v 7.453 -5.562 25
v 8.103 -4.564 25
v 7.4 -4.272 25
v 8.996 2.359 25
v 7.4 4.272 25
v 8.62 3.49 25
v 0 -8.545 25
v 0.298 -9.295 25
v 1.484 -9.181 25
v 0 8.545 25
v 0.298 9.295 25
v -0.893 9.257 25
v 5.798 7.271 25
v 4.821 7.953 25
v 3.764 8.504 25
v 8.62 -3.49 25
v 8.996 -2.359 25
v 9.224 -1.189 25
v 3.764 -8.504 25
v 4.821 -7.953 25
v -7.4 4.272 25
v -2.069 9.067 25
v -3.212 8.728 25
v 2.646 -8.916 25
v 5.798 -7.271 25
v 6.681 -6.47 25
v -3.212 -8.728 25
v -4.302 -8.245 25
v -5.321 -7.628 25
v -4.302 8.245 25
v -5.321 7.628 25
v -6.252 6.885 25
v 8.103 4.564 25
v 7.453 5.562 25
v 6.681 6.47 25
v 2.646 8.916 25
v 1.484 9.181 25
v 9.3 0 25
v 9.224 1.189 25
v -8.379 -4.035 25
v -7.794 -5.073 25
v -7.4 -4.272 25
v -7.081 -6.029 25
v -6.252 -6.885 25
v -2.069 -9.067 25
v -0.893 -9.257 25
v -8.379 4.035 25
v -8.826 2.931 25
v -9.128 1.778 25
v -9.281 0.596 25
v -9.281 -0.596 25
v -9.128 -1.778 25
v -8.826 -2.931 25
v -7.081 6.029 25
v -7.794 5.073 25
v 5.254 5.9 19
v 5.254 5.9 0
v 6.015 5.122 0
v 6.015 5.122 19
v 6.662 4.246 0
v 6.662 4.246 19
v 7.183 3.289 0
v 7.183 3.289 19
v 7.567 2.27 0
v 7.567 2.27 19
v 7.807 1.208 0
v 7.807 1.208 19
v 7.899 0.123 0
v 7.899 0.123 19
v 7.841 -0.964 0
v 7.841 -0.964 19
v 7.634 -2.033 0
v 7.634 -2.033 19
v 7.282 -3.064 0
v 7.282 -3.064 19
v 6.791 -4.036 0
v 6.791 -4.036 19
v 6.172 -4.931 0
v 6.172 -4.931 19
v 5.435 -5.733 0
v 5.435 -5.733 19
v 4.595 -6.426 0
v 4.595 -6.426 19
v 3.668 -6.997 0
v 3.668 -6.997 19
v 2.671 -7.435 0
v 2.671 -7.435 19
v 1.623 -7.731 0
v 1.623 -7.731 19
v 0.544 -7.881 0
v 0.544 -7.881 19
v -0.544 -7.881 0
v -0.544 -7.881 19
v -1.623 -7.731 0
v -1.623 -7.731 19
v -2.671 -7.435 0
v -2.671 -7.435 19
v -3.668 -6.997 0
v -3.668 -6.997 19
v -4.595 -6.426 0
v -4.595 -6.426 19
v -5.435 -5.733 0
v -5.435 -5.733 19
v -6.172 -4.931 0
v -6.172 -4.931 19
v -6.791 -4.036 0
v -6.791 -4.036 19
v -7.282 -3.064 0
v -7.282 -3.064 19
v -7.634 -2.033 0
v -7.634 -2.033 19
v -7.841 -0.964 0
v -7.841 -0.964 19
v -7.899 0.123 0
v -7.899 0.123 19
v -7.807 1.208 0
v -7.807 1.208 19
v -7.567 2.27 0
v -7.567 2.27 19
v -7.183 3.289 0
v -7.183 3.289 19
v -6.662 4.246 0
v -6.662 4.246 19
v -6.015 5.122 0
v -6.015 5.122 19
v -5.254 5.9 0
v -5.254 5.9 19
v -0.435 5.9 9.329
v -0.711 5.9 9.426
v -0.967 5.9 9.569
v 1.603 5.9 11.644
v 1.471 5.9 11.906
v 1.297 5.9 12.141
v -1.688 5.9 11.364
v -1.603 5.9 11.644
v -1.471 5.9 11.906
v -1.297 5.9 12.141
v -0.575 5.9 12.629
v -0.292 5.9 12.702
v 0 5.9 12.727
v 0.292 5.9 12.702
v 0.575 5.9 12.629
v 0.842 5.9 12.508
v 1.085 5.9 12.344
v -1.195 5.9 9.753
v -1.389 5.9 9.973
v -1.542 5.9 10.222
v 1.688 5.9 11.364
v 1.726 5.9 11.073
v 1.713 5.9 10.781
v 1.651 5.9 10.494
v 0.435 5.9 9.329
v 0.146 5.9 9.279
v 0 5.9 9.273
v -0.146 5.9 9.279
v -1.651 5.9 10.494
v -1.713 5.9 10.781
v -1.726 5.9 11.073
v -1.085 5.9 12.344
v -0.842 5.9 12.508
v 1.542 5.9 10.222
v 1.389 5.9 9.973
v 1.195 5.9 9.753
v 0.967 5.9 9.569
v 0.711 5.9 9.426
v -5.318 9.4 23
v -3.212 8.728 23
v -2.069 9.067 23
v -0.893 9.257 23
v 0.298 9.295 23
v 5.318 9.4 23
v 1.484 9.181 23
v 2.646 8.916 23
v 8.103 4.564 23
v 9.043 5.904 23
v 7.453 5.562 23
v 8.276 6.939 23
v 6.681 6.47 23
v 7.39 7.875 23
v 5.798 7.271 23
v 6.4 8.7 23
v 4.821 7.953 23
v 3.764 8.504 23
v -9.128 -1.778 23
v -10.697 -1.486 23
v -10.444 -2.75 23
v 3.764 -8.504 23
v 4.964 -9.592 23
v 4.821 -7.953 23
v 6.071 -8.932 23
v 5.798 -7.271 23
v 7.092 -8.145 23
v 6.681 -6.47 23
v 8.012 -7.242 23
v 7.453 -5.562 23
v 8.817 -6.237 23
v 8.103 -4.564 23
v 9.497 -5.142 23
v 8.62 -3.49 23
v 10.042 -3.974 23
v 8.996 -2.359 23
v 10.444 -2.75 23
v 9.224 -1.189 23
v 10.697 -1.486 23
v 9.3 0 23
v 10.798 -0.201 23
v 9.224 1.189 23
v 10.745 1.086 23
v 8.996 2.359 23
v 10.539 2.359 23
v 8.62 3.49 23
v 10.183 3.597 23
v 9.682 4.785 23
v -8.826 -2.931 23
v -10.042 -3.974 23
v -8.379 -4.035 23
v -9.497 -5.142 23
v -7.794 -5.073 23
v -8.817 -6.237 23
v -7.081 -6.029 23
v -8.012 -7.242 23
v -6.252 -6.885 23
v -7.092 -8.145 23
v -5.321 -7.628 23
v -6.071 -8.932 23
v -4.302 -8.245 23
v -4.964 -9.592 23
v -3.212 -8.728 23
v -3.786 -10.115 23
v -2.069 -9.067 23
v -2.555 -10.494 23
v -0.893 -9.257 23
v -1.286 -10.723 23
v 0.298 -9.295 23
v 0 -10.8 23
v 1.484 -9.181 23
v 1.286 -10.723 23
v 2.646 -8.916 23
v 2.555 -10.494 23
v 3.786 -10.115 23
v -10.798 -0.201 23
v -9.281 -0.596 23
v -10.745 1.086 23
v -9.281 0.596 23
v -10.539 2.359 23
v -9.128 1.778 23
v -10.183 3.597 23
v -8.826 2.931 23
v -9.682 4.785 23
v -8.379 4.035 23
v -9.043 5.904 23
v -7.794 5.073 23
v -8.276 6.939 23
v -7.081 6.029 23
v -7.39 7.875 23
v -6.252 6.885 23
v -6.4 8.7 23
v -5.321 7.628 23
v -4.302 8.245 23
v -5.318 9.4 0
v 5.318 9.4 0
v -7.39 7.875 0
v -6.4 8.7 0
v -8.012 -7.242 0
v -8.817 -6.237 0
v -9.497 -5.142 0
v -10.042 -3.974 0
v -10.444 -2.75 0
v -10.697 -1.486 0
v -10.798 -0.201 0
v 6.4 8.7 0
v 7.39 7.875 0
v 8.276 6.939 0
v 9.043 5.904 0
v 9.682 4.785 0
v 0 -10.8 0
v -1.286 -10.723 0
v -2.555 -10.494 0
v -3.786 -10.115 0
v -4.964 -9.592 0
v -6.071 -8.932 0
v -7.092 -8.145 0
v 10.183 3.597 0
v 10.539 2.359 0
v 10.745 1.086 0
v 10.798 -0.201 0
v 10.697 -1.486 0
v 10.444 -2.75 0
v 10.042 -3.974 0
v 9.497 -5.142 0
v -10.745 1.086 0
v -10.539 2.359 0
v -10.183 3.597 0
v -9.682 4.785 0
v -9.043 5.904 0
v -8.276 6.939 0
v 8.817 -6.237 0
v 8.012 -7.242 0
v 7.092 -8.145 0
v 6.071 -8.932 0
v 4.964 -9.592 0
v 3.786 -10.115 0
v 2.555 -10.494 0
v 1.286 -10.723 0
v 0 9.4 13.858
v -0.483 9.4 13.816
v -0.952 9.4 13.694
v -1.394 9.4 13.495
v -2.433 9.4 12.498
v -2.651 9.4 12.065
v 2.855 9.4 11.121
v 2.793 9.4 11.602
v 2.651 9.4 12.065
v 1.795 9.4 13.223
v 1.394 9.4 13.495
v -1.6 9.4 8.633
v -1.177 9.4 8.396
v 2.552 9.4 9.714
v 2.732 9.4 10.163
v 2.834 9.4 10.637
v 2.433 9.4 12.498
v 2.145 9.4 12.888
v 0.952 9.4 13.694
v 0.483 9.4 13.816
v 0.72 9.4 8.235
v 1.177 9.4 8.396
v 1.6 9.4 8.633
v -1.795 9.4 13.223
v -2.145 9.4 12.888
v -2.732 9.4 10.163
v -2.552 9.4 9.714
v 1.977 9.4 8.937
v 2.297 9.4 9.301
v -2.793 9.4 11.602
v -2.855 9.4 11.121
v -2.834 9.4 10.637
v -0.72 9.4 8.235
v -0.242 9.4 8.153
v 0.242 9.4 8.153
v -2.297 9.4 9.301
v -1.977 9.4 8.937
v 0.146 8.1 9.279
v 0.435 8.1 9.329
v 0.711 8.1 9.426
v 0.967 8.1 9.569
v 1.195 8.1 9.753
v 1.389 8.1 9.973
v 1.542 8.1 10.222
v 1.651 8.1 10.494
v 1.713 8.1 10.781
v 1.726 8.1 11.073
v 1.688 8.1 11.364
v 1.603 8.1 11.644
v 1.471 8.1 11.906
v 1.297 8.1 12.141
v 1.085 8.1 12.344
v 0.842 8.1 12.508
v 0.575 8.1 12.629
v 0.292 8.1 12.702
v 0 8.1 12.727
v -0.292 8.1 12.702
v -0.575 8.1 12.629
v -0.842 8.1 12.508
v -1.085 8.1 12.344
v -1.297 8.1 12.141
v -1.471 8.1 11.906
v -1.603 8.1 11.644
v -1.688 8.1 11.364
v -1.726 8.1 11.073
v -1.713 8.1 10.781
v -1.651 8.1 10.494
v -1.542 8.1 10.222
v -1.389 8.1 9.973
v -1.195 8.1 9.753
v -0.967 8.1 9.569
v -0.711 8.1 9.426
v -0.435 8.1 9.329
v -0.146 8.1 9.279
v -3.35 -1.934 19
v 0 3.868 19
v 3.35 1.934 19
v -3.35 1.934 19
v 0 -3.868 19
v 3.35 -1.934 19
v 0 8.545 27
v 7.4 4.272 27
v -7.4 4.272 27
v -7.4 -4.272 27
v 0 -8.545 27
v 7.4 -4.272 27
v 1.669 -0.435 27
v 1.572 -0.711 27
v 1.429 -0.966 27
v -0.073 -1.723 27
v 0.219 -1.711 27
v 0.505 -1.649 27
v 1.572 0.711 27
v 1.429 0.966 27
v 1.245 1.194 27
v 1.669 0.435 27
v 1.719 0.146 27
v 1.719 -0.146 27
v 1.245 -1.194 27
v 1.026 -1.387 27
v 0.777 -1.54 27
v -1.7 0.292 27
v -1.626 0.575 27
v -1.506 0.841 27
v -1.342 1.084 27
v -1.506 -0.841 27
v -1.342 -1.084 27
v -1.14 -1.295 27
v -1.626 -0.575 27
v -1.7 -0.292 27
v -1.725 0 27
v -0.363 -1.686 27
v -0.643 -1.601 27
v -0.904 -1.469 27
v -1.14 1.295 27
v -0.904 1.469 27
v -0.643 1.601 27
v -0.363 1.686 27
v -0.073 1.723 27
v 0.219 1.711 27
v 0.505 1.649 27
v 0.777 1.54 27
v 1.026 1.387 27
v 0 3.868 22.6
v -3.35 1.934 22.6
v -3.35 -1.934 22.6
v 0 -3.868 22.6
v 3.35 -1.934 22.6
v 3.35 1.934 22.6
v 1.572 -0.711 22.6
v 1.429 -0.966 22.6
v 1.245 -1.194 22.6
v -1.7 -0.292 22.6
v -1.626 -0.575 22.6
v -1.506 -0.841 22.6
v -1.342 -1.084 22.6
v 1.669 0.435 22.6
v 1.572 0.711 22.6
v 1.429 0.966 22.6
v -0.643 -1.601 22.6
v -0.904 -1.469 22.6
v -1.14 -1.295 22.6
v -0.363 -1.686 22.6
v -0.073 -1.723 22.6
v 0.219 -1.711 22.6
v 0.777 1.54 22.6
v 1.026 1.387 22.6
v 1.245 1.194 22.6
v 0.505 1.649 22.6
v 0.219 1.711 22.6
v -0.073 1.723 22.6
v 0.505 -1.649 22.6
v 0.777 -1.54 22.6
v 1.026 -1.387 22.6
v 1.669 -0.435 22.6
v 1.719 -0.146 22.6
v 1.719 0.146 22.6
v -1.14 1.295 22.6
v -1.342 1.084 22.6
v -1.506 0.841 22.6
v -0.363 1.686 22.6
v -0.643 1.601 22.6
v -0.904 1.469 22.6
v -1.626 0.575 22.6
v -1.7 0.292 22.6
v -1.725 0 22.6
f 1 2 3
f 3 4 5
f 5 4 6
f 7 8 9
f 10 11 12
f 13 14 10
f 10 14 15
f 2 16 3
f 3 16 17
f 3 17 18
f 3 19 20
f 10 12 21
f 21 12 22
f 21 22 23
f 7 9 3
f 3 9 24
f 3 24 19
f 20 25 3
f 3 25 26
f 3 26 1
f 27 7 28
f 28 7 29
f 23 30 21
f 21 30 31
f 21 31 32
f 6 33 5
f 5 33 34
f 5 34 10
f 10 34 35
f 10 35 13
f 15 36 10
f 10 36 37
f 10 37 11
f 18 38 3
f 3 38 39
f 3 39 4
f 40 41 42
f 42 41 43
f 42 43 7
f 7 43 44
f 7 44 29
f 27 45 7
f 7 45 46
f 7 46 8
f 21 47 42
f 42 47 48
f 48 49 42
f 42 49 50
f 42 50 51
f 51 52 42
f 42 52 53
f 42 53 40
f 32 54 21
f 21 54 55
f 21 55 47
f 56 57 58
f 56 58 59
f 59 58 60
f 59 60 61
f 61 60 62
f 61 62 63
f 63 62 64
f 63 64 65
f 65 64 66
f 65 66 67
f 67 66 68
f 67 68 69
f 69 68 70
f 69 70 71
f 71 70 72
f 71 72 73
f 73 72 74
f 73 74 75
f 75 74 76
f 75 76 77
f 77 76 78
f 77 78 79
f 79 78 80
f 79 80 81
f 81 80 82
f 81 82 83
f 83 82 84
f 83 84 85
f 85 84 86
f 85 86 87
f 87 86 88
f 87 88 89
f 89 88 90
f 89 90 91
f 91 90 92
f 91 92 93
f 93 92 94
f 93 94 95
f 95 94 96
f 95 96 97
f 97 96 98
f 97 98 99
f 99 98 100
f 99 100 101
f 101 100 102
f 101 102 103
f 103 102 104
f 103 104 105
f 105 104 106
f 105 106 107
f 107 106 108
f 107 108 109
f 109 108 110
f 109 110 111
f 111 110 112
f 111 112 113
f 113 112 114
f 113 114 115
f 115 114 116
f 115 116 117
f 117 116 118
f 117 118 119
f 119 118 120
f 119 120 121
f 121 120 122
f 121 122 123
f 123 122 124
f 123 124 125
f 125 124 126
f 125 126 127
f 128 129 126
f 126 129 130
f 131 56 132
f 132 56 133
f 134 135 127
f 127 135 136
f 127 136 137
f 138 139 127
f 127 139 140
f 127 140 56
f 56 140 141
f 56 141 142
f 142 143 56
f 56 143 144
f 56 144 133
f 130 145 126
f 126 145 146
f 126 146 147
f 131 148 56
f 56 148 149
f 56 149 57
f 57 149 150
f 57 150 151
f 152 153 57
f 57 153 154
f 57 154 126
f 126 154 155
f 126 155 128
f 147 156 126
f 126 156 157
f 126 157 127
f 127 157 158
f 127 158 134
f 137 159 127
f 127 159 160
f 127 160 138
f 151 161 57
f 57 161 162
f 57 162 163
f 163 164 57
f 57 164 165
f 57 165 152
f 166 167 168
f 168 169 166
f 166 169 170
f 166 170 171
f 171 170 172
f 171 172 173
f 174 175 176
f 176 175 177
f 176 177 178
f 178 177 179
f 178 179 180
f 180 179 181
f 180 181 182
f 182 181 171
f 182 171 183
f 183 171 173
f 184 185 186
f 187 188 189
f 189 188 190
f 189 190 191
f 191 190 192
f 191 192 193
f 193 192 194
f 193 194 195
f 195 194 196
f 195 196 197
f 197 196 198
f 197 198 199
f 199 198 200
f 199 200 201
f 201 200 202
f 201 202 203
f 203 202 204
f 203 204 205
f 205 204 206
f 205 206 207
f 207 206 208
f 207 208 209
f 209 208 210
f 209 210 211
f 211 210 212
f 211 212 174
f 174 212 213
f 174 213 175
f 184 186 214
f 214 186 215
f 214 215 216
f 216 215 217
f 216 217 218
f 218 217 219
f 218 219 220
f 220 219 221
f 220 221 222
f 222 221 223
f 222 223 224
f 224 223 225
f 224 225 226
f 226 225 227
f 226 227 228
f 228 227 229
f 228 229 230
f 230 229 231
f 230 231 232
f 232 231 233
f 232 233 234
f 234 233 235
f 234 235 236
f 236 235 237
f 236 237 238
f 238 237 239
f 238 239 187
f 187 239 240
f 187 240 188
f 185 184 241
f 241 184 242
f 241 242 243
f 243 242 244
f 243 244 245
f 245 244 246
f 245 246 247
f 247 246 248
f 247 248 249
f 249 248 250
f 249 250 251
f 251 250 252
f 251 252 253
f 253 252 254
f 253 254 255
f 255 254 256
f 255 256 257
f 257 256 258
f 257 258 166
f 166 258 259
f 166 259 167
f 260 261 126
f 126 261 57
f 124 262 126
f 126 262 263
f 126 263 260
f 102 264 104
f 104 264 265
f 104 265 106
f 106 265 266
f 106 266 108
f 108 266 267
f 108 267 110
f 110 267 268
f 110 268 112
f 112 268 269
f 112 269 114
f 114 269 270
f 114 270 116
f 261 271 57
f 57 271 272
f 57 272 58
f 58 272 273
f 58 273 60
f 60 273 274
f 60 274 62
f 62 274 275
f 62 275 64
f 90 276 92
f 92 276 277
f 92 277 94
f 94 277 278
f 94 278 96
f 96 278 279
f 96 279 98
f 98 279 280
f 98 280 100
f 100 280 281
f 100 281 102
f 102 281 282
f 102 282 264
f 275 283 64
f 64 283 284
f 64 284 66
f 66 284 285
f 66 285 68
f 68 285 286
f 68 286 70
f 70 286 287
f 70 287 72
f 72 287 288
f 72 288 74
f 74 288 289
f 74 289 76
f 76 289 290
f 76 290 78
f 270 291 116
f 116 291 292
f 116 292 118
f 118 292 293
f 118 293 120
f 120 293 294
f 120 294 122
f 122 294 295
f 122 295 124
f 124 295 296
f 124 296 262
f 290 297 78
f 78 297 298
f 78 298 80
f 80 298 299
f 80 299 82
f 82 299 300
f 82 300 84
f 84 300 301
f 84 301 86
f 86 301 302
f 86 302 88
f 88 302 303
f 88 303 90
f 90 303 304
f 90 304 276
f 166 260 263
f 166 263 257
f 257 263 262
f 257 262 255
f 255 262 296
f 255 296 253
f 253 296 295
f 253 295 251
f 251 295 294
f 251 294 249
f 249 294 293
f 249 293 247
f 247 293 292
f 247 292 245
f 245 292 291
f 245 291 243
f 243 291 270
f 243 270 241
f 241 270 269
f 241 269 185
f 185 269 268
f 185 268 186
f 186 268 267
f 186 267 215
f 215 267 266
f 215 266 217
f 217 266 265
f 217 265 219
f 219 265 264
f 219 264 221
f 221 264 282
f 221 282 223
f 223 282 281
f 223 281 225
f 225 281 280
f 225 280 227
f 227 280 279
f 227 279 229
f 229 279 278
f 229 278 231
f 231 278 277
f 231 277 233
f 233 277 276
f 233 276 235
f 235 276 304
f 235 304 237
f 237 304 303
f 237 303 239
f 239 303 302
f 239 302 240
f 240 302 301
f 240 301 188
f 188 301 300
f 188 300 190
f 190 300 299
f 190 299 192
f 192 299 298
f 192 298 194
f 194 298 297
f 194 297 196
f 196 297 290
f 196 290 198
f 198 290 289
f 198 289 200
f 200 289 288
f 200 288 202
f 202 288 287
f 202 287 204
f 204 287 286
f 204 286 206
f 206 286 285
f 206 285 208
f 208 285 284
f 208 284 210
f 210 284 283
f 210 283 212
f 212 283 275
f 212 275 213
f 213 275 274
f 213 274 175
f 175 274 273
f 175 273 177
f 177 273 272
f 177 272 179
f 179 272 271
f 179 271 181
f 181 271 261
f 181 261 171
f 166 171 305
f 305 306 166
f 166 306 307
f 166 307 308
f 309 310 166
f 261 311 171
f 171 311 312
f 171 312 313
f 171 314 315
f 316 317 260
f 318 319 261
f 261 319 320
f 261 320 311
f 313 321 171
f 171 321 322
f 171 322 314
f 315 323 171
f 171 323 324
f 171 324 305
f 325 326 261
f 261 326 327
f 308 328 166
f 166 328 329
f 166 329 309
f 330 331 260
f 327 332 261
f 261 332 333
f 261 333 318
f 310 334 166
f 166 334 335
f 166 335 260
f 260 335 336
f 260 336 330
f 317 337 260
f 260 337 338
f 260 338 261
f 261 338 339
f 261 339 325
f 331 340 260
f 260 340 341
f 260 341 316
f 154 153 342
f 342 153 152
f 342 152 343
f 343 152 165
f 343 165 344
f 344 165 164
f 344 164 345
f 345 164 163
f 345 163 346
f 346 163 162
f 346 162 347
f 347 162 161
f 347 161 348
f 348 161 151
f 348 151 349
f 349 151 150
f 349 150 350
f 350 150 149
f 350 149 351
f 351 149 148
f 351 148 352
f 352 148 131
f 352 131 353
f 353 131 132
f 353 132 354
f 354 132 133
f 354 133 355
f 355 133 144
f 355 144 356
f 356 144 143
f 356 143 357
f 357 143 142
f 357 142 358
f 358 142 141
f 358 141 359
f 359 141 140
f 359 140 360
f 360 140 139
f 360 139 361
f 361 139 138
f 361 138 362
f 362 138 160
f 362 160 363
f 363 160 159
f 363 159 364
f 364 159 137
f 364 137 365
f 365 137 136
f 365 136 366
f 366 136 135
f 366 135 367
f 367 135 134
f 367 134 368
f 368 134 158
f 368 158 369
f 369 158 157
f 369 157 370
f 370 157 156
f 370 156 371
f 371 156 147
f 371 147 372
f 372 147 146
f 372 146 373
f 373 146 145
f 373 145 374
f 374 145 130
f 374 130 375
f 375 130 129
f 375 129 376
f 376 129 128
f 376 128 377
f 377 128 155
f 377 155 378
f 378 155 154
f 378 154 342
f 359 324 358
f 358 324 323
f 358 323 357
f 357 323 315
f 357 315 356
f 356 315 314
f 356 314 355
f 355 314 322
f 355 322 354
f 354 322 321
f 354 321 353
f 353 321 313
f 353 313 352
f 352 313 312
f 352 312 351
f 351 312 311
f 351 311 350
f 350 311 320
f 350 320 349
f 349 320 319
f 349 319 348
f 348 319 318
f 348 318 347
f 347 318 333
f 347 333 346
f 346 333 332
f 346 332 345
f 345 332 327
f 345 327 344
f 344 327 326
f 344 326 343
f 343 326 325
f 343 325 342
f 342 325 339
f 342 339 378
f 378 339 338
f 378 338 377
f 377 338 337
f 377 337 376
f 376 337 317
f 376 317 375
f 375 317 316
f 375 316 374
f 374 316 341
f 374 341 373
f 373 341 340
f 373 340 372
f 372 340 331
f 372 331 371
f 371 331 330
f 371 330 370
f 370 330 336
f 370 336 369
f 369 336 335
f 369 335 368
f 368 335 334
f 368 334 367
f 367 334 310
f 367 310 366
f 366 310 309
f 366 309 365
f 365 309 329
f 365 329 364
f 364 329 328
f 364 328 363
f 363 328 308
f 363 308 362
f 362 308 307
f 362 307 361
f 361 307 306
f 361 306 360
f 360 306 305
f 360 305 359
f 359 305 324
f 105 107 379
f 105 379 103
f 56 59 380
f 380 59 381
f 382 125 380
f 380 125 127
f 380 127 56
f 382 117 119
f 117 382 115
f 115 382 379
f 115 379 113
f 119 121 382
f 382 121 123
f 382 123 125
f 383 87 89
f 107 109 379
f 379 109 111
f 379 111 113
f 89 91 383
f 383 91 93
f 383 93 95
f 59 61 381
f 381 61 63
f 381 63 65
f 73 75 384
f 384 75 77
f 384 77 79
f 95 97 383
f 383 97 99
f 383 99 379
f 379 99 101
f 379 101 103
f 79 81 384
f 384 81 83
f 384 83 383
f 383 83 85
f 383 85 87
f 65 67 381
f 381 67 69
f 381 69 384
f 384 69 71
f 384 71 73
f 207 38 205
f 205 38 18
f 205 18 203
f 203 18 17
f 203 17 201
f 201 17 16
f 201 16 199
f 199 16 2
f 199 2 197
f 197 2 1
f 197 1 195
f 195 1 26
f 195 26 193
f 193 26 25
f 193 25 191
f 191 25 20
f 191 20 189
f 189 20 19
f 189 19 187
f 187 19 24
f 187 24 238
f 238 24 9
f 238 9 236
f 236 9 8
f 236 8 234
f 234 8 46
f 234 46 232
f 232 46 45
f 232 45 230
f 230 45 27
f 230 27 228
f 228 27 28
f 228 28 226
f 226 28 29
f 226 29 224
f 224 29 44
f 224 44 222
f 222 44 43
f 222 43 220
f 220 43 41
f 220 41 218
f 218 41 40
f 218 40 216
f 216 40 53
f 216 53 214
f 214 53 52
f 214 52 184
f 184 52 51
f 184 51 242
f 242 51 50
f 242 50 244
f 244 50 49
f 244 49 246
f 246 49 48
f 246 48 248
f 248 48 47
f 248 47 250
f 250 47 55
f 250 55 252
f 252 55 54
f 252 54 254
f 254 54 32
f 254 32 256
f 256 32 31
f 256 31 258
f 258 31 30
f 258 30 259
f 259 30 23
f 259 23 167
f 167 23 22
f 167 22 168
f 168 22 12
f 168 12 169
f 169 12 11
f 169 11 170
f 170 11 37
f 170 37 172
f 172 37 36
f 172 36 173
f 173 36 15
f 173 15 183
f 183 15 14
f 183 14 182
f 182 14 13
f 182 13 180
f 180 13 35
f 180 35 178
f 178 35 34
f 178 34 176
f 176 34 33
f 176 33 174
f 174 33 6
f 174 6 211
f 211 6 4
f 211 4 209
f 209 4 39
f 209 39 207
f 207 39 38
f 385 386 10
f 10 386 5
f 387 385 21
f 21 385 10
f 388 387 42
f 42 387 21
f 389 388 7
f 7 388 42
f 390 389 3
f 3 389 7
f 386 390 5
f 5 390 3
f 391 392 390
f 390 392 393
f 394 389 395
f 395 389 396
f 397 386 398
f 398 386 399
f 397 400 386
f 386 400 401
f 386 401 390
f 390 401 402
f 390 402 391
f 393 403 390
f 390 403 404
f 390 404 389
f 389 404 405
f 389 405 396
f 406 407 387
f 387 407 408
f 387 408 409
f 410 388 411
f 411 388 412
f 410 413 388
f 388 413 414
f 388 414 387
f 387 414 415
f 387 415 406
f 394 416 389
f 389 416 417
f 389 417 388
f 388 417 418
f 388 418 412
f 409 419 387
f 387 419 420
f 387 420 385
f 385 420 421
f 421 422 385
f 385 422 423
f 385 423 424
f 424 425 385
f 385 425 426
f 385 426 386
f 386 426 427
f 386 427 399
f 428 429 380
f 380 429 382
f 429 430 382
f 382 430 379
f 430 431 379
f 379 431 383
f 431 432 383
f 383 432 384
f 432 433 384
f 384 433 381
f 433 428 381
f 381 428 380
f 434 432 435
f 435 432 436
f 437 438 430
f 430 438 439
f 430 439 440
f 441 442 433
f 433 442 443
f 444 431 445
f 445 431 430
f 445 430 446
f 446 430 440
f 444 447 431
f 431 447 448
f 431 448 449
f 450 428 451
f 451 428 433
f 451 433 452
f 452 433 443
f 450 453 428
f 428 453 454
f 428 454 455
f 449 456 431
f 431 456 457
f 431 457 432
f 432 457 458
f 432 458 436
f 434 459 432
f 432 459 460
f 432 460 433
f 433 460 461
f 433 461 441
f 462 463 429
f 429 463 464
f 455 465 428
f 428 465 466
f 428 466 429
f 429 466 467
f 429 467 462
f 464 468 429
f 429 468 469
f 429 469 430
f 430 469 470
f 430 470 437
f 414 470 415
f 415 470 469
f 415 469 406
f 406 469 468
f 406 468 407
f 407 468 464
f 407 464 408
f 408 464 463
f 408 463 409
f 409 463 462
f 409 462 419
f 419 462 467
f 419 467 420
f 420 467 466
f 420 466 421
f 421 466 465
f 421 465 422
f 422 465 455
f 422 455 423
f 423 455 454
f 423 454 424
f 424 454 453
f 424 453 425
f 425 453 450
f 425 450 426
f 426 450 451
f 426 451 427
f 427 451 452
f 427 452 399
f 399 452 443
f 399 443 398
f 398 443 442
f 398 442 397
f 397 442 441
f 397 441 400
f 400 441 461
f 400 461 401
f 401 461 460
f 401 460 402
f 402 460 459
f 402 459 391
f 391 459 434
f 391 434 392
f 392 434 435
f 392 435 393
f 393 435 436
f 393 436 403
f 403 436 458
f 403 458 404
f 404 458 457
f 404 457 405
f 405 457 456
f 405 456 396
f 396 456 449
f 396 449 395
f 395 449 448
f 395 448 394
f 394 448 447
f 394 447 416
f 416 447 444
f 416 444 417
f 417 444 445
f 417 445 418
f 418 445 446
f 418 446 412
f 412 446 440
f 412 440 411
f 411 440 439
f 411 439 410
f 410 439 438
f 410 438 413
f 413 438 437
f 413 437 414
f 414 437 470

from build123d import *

# Parameters (mm, degrees)
BOSS_EXTRUDE1_DEPTH                            = 23
CSK_FOR_4_FLAT_HEAD_MACHINE_SCREW1_D           = 3.4544
CSK_FOR_4_FLAT_HEAD_MACHINE_SCREW1_DEPTH       = 3.5
CSK_FOR_4_FLAT_HEAD_MACHINE_SCREW1_CSINK_D     = 5.715
CSK_FOR_4_FLAT_HEAD_MACHINE_SCREW1_CSINK_ANGLE = 82
SKETCH5_R                                      = 9.3
BOSS_EXTRUDE2_DEPTH                            = 2
BOSS_EXTRUDE2_DEPTH_BACK                       = 4
BOSS_EXTRUDE3_DEPTH                            = 2
CUT_EXTRUDE1_DEPTH                             = 3.6
SKETCH8_R                                      = 1.725
CUT_EXTRUDE2_DEPTH                             = 9


with BuildPart() as part:
    # Base → Boss-Extrude1 (new body)
    with BuildSketch(Plane.XY):
        with BuildLine():
            Line((-5.31789432, 9.4), (5.31789432, 9.4))
            ThreePointArc((5.31789432, 9.4), (0, -10.8), (-5.31789432, 9.4))
        make_face()
        with BuildLine():
            Line((-5.253570215, 5.9), (5.253570215, 5.9))
            ThreePointArc((5.253570215, 5.9), (0, -7.9), (-5.253570215, 5.9))
        make_face(mode=Mode.SUBTRACT)
    extrude(amount=BOSS_EXTRUDE1_DEPTH)

    # CSK for #4 Flat Head Machine Screw1
    with Locations(Plane(origin=(0, 9.4, 0), x_dir=(1, 0, 0), z_dir=(0, 1, 0))):
        with Locations((0, -11)):
            CounterSinkHole(CSK_FOR_4_FLAT_HEAD_MACHINE_SCREW1_D / 2, CSK_FOR_4_FLAT_HEAD_MACHINE_SCREW1_CSINK_D / 2, depth=CSK_FOR_4_FLAT_HEAD_MACHINE_SCREW1_DEPTH, counter_sink_angle=CSK_FOR_4_FLAT_HEAD_MACHINE_SCREW1_CSINK_ANGLE)

    # Sketch5 → Boss-Extrude2 (add, two sides)
    with BuildSketch(Plane.XY.offset(23)) as boss_extrude2_sk:
        Circle(SKETCH5_R)
    extrude(amount=BOSS_EXTRUDE2_DEPTH)
    extrude(boss_extrude2_sk.sketch, amount=-BOSS_EXTRUDE2_DEPTH_BACK)

    # Sketch6 → Boss-Extrude3 (add)
    with BuildSketch(Plane.XY.offset(25)):
        Polygon((0, 8.544783984), (-7.4, 4.272391992), (-7.4, -4.272391992), (0, -8.544783984), (7.4, -4.272391992), (7.4, 4.272391992), align=None)
    extrude(amount=BOSS_EXTRUDE3_DEPTH)

    # Sketch7 → Cut-Extrude1 (cut)
    with BuildSketch(Plane(origin=(0, 0, 19), x_dir=(-1, 0, 0), z_dir=(0, 0, -1))):
        Polygon((0, 3.868246804), (-3.35, 1.934123402), (-3.35, -1.934123402), (0, -3.868246804), (3.35, -1.934123402), (3.35, 1.934123402), align=None)
    extrude(amount=-CUT_EXTRUDE1_DEPTH, mode=Mode.SUBTRACT)

    # Sketch8 → Cut-Extrude2 (cut, through all)
    with BuildSketch(Plane(origin=(0, 0, 19), x_dir=(-1, 0, 0), z_dir=(0, 0, -1))):
        Circle(SKETCH8_R)
    extrude(amount=-CUT_EXTRUDE2_DEPTH, mode=Mode.SUBTRACT)


solid = part.part
